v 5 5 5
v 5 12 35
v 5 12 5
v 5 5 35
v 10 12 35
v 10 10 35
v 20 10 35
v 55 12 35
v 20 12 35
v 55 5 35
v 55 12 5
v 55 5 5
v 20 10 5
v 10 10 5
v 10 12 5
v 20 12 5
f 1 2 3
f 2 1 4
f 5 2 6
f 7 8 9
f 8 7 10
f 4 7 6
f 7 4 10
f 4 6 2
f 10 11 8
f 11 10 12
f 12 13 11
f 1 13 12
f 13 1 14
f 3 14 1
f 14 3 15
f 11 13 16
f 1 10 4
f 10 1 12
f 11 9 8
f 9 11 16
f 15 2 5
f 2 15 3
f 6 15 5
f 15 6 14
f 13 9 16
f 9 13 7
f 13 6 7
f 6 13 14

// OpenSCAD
translate([5,5,5]){
difference(){
translate([0, 0, 0]) cube([50, 7, 30]) ;
translate([5, 5, -5]) color( "red" ) cube([10, 10, 40]) ;
}
} 
